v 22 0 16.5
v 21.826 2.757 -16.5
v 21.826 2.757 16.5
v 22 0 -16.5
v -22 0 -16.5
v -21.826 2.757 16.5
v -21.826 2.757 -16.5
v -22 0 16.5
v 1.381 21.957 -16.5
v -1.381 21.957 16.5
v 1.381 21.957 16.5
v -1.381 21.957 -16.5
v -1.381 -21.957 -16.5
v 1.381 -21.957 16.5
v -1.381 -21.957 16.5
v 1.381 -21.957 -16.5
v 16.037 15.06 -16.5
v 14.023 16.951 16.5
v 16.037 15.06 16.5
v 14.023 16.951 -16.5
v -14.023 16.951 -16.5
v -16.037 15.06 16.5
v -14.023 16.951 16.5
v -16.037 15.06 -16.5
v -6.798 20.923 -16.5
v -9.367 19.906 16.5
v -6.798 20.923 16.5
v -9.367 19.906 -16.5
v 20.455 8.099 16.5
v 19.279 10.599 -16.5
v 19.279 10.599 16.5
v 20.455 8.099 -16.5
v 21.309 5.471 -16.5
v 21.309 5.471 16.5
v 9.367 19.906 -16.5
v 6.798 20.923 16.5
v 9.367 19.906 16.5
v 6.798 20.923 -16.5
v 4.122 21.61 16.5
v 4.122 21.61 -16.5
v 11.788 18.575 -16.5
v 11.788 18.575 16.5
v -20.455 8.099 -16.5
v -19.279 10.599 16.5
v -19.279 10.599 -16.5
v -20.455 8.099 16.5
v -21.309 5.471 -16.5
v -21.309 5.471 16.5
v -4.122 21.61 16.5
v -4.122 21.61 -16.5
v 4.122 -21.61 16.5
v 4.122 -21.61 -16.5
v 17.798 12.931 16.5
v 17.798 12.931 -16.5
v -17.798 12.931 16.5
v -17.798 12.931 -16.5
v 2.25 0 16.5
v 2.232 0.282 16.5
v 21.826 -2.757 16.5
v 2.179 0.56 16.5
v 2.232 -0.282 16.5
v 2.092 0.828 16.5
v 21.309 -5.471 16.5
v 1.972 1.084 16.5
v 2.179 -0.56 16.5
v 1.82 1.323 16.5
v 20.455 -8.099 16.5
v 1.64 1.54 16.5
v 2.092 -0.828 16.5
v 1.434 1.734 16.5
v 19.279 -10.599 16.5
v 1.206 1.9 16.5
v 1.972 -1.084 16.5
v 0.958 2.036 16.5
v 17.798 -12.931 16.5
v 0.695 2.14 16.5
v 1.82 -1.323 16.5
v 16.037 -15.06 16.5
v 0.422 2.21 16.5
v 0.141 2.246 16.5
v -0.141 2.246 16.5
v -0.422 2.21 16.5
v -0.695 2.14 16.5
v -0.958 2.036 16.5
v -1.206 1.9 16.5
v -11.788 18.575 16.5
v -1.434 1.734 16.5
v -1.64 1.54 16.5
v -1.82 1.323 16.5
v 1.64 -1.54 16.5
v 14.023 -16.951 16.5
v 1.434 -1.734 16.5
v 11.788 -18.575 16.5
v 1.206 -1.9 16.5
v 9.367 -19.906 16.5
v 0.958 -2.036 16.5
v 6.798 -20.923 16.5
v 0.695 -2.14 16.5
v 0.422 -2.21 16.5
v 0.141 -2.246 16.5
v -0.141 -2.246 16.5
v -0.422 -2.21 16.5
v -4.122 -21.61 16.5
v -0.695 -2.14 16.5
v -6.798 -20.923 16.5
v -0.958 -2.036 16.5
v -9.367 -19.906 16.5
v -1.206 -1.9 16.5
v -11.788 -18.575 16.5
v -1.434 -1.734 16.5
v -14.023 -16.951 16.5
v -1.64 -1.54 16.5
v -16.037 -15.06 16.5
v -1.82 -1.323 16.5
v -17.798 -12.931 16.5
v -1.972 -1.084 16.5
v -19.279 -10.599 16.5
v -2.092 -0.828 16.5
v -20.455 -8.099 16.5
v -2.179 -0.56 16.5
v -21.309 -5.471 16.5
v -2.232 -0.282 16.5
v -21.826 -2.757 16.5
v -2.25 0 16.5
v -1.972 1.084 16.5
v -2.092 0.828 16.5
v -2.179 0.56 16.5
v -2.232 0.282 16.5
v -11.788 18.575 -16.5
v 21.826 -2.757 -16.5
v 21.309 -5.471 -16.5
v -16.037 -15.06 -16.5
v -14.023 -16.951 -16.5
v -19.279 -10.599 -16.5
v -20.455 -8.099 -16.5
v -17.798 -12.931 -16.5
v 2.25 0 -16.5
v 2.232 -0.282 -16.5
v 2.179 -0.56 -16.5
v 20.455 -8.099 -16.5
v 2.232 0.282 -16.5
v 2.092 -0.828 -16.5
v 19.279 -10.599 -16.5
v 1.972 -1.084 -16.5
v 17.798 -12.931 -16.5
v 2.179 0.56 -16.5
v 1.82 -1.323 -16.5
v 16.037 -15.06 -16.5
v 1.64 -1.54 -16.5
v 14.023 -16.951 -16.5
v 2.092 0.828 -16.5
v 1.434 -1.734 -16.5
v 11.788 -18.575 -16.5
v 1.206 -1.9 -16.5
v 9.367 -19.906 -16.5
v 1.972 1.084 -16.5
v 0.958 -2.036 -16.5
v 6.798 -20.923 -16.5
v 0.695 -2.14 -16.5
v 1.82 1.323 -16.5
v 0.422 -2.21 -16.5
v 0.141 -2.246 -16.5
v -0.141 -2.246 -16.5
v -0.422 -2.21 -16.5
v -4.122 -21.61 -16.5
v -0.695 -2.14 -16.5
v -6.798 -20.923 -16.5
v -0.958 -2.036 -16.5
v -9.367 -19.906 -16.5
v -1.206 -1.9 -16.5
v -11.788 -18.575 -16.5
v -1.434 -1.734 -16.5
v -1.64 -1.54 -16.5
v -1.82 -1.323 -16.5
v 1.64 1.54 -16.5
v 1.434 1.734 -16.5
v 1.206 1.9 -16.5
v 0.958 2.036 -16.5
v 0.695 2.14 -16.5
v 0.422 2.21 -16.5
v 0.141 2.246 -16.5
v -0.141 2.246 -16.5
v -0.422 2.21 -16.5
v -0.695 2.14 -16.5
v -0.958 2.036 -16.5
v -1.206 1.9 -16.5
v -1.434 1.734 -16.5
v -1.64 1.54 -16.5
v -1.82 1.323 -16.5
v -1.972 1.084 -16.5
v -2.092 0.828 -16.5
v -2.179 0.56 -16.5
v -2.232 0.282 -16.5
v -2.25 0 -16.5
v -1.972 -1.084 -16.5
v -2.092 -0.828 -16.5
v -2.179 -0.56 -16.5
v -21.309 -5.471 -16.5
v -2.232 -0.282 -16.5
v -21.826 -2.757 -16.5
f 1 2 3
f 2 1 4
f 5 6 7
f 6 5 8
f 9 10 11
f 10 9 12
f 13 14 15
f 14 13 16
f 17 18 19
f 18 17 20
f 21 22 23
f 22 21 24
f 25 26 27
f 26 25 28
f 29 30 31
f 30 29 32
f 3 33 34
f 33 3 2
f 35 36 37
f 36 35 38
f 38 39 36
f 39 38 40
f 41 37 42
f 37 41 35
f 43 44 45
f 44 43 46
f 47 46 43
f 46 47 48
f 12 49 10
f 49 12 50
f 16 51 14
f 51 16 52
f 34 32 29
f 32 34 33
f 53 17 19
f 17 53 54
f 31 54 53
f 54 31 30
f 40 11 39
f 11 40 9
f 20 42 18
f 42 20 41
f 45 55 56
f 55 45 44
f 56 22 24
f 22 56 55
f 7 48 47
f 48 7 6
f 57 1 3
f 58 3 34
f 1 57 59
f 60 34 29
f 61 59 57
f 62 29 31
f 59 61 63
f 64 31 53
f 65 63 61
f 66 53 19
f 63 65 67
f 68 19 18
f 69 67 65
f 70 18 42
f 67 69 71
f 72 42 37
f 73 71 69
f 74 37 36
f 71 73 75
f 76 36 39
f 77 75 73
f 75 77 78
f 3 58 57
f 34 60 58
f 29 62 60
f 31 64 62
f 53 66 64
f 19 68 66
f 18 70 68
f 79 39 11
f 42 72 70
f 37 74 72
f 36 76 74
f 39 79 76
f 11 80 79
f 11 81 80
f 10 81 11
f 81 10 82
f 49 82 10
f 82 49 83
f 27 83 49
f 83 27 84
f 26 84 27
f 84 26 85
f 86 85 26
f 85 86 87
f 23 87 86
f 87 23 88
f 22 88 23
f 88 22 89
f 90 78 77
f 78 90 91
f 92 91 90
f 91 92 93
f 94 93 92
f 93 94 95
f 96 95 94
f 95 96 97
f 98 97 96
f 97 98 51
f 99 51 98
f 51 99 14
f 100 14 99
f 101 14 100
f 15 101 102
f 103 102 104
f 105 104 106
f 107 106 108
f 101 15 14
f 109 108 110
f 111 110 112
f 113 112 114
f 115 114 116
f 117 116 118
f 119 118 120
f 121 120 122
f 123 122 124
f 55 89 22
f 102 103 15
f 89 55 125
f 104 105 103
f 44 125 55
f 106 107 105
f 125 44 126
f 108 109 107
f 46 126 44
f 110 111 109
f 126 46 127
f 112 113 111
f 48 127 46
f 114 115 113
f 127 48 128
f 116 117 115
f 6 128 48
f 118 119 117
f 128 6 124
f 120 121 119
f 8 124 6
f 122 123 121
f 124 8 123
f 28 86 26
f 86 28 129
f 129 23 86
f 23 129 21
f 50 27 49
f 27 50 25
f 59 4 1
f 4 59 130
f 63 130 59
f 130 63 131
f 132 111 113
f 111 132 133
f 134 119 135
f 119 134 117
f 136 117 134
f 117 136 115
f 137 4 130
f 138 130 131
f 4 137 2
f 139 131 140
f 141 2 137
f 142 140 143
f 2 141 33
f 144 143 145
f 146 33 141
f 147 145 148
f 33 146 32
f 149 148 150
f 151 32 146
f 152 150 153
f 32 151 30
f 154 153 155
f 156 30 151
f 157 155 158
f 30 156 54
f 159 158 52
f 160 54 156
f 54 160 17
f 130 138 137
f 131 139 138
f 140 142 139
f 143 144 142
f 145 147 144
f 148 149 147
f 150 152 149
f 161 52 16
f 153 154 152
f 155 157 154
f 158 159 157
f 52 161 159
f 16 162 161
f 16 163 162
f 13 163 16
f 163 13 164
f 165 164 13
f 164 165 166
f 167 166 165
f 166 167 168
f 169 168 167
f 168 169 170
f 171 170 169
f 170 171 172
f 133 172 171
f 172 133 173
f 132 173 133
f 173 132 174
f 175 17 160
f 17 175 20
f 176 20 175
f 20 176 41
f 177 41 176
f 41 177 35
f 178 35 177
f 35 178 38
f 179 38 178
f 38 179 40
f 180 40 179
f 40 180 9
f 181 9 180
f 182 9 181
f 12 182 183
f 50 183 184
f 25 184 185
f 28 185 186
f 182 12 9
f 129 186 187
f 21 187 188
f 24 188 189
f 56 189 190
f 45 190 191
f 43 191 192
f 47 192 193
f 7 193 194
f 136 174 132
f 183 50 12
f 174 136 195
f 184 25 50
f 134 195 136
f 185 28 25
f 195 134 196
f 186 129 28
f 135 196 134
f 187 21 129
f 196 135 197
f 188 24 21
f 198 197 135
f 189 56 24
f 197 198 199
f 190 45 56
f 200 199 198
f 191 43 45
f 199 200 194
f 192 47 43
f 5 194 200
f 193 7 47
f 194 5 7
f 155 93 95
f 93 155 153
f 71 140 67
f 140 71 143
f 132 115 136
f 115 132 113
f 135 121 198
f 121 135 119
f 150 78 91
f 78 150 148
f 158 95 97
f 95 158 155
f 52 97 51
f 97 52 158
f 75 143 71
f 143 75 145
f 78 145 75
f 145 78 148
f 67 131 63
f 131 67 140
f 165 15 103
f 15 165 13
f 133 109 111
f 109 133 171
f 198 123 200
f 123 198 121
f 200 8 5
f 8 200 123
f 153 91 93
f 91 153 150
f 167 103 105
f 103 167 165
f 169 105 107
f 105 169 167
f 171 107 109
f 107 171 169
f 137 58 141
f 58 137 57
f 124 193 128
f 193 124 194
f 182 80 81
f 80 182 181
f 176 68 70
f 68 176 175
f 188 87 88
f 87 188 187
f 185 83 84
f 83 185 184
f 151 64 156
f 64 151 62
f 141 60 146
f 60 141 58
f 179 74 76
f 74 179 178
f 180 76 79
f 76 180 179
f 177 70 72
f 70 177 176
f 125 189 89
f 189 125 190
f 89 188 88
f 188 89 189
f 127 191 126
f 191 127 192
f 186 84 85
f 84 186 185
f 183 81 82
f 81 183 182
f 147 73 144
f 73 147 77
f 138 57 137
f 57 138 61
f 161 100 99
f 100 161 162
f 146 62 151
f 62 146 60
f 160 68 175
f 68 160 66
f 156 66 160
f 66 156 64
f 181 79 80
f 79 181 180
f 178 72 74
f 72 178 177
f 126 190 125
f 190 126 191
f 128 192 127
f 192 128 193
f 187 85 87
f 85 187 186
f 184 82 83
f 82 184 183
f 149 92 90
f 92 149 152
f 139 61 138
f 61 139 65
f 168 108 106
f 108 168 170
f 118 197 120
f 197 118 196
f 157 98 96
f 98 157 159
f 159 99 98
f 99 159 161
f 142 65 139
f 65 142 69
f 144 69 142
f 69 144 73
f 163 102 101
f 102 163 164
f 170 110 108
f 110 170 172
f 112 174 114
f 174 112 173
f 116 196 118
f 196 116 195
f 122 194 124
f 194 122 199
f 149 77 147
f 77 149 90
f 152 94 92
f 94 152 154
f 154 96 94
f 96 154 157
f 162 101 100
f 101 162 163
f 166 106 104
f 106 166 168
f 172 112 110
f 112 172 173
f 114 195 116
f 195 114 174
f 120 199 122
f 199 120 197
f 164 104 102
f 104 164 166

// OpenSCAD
$fn = 50;


difference() {
	union() {
		translate(v = [0, 0, -16.5000000000]) {
			cylinder(h = 33, r = 22.0000000000);
		}
	}
	union() {
		translate(v = [0, 0, -100.0000000000]) {
			cylinder(h = 200, r = 2.2500000000);
		}
	}
}
